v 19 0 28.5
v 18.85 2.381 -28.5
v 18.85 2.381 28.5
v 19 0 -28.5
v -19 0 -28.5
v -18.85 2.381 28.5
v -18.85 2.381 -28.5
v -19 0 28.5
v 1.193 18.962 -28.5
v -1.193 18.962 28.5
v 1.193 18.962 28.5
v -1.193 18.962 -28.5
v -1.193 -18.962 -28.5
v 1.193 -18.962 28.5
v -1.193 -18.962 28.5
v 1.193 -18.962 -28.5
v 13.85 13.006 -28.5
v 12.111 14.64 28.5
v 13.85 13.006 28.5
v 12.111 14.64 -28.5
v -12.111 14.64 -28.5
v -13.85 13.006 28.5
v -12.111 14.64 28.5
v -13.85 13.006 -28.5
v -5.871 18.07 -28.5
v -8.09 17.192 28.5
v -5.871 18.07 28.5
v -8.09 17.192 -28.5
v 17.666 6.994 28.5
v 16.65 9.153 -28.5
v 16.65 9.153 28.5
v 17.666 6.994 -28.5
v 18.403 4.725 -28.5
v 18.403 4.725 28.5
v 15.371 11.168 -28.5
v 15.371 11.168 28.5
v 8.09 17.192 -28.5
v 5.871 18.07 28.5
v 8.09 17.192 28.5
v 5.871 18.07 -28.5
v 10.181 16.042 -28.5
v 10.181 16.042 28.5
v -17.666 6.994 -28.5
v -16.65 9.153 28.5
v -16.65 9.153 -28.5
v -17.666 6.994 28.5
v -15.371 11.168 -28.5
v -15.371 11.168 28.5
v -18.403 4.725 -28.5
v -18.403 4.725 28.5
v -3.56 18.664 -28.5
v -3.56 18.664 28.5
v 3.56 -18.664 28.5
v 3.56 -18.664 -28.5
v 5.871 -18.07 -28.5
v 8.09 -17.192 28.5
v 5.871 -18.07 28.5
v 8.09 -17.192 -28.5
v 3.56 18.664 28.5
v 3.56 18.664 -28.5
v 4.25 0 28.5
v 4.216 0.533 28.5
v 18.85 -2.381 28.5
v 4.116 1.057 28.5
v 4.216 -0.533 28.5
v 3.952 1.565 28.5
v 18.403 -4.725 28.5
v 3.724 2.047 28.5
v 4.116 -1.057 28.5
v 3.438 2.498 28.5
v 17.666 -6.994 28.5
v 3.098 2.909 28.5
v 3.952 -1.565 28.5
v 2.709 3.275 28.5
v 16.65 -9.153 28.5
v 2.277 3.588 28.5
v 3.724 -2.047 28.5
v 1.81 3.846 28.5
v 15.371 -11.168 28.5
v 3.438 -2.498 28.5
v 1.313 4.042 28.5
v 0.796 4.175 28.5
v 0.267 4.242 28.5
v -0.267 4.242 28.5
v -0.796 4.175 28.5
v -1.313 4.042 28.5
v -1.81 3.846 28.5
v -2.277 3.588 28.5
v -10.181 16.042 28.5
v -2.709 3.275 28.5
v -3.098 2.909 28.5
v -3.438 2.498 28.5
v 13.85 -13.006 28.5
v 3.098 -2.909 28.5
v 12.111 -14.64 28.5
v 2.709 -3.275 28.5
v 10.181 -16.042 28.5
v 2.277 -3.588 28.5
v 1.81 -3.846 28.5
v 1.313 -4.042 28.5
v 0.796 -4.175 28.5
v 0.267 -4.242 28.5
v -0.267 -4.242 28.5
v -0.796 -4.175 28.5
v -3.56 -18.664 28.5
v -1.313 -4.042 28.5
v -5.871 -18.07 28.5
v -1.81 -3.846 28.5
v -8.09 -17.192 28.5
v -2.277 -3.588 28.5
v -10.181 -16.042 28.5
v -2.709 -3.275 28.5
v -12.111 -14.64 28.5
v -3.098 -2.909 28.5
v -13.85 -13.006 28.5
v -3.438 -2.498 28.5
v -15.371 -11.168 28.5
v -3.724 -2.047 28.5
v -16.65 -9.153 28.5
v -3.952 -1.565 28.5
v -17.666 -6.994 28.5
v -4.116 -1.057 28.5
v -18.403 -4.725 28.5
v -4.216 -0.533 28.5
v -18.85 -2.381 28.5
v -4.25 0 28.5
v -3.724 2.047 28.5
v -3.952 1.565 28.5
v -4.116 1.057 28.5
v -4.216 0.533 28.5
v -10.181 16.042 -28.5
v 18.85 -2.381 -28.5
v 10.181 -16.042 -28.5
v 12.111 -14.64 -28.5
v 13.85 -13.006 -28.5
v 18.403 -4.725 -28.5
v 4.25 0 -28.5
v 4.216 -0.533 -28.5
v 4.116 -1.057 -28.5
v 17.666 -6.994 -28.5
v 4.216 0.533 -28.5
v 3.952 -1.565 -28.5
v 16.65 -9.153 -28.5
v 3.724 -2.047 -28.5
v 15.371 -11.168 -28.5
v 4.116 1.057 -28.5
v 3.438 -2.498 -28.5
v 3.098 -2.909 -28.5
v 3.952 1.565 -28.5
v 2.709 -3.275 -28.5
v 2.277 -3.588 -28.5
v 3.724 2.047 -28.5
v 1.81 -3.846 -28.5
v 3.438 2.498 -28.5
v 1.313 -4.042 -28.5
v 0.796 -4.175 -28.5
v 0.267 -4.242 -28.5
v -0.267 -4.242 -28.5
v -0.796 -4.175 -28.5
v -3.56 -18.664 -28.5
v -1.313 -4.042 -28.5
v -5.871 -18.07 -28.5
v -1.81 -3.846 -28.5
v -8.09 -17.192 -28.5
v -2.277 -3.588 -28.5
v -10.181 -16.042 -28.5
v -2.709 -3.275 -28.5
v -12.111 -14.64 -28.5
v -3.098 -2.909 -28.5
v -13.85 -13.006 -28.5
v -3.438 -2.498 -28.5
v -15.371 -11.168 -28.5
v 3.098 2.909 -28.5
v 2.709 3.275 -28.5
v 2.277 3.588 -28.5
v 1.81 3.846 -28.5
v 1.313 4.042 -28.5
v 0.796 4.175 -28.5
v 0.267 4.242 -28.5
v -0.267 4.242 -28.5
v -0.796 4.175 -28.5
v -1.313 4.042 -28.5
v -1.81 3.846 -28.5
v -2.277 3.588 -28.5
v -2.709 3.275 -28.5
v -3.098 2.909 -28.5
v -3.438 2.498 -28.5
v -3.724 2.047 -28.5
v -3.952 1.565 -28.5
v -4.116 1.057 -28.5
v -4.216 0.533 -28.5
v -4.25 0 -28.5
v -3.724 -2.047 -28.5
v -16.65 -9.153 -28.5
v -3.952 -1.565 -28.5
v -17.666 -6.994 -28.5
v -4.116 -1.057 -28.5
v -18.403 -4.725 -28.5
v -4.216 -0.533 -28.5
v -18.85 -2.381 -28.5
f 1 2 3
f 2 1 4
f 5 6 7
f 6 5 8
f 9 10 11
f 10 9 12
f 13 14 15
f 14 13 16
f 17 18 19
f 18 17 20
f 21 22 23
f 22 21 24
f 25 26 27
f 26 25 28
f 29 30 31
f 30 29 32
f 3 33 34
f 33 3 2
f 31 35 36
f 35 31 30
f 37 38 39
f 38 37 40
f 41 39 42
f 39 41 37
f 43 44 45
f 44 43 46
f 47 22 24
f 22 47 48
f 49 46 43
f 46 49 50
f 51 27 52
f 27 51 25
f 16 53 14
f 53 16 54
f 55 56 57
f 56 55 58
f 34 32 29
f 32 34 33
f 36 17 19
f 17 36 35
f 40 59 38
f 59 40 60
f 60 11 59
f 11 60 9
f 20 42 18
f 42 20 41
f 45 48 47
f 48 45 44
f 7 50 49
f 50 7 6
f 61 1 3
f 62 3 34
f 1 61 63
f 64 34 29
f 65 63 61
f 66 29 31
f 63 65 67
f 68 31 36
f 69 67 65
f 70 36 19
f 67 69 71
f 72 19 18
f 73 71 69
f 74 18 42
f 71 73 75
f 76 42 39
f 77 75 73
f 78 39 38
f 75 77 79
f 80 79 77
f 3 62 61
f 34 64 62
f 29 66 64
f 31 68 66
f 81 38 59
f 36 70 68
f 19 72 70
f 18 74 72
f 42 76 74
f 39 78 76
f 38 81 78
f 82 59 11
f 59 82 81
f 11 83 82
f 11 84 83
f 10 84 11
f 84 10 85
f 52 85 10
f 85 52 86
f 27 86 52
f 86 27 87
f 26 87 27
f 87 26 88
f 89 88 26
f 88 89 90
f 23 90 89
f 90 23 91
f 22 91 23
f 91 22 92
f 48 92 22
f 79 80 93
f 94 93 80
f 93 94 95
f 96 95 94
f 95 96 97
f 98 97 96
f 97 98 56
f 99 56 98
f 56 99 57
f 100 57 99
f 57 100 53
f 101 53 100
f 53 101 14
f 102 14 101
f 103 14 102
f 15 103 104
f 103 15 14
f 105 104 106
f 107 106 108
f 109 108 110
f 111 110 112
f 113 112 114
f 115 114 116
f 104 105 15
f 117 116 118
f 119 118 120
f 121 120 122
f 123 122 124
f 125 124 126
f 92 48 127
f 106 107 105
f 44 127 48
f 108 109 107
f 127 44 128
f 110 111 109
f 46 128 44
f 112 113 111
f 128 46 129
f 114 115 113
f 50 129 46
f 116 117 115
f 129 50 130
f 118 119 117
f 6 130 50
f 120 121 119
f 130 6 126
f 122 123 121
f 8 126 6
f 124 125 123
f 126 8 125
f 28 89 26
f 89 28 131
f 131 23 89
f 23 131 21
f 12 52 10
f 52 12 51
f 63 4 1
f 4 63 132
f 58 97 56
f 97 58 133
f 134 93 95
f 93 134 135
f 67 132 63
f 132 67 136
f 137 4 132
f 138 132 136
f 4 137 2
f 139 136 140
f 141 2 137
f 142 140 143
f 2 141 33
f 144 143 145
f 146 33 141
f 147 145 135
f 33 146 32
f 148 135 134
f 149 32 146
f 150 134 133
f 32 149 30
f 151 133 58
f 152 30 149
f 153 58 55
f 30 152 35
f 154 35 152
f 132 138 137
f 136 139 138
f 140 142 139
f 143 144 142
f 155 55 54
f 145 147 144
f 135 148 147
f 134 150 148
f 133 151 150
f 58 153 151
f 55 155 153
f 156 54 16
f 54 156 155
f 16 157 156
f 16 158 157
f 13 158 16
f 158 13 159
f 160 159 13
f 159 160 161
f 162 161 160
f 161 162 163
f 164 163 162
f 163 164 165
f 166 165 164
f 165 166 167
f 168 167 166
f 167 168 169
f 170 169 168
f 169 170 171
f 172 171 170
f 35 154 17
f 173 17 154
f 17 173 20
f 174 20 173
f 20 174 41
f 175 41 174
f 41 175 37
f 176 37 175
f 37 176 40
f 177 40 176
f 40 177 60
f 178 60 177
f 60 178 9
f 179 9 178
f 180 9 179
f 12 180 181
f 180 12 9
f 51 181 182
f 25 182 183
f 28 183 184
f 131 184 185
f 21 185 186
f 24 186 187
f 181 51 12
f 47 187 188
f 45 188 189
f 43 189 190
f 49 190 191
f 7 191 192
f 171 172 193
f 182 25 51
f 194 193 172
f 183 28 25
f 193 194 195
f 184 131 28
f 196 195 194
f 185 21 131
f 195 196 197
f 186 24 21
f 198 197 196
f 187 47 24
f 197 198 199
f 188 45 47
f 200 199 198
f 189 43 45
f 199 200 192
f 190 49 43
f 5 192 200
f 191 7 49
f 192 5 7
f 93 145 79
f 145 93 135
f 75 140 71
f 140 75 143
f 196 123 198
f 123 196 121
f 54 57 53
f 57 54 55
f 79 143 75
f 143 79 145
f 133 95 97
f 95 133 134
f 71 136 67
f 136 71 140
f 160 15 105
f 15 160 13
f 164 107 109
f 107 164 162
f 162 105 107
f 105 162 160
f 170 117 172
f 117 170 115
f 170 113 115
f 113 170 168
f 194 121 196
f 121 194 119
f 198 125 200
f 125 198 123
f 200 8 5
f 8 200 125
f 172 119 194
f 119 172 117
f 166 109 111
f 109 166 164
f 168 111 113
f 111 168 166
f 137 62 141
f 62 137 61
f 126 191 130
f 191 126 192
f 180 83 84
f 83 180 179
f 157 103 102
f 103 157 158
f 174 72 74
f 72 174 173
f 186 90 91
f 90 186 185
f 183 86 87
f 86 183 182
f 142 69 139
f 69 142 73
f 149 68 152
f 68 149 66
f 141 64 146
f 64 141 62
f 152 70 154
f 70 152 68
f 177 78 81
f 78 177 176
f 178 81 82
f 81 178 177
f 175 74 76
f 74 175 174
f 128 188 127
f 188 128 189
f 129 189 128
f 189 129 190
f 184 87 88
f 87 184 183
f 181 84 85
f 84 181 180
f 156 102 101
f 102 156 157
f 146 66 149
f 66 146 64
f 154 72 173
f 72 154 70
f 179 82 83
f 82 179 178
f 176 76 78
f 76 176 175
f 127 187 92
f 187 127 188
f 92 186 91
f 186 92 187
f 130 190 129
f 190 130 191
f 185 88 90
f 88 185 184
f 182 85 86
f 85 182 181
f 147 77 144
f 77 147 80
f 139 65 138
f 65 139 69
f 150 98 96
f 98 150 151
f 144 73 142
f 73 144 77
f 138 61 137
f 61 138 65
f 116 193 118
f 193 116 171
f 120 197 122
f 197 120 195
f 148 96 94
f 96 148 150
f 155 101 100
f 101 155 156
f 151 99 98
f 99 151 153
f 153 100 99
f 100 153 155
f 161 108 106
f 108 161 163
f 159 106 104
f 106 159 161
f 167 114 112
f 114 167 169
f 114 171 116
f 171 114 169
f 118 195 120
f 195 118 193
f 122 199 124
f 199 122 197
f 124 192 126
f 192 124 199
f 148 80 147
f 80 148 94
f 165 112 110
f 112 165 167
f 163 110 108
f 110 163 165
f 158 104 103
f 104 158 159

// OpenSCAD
$fn = 50;


difference() {
	union() {
		translate(v = [0, 0, -28.5000000000]) {
			cylinder(h = 57, r = 19.0000000000);
		}
	}
	union() {
		translate(v = [0, 0, -100.0000000000]) {
			cylinder(h = 200, r = 4.2500000000);
		}
	}
}
